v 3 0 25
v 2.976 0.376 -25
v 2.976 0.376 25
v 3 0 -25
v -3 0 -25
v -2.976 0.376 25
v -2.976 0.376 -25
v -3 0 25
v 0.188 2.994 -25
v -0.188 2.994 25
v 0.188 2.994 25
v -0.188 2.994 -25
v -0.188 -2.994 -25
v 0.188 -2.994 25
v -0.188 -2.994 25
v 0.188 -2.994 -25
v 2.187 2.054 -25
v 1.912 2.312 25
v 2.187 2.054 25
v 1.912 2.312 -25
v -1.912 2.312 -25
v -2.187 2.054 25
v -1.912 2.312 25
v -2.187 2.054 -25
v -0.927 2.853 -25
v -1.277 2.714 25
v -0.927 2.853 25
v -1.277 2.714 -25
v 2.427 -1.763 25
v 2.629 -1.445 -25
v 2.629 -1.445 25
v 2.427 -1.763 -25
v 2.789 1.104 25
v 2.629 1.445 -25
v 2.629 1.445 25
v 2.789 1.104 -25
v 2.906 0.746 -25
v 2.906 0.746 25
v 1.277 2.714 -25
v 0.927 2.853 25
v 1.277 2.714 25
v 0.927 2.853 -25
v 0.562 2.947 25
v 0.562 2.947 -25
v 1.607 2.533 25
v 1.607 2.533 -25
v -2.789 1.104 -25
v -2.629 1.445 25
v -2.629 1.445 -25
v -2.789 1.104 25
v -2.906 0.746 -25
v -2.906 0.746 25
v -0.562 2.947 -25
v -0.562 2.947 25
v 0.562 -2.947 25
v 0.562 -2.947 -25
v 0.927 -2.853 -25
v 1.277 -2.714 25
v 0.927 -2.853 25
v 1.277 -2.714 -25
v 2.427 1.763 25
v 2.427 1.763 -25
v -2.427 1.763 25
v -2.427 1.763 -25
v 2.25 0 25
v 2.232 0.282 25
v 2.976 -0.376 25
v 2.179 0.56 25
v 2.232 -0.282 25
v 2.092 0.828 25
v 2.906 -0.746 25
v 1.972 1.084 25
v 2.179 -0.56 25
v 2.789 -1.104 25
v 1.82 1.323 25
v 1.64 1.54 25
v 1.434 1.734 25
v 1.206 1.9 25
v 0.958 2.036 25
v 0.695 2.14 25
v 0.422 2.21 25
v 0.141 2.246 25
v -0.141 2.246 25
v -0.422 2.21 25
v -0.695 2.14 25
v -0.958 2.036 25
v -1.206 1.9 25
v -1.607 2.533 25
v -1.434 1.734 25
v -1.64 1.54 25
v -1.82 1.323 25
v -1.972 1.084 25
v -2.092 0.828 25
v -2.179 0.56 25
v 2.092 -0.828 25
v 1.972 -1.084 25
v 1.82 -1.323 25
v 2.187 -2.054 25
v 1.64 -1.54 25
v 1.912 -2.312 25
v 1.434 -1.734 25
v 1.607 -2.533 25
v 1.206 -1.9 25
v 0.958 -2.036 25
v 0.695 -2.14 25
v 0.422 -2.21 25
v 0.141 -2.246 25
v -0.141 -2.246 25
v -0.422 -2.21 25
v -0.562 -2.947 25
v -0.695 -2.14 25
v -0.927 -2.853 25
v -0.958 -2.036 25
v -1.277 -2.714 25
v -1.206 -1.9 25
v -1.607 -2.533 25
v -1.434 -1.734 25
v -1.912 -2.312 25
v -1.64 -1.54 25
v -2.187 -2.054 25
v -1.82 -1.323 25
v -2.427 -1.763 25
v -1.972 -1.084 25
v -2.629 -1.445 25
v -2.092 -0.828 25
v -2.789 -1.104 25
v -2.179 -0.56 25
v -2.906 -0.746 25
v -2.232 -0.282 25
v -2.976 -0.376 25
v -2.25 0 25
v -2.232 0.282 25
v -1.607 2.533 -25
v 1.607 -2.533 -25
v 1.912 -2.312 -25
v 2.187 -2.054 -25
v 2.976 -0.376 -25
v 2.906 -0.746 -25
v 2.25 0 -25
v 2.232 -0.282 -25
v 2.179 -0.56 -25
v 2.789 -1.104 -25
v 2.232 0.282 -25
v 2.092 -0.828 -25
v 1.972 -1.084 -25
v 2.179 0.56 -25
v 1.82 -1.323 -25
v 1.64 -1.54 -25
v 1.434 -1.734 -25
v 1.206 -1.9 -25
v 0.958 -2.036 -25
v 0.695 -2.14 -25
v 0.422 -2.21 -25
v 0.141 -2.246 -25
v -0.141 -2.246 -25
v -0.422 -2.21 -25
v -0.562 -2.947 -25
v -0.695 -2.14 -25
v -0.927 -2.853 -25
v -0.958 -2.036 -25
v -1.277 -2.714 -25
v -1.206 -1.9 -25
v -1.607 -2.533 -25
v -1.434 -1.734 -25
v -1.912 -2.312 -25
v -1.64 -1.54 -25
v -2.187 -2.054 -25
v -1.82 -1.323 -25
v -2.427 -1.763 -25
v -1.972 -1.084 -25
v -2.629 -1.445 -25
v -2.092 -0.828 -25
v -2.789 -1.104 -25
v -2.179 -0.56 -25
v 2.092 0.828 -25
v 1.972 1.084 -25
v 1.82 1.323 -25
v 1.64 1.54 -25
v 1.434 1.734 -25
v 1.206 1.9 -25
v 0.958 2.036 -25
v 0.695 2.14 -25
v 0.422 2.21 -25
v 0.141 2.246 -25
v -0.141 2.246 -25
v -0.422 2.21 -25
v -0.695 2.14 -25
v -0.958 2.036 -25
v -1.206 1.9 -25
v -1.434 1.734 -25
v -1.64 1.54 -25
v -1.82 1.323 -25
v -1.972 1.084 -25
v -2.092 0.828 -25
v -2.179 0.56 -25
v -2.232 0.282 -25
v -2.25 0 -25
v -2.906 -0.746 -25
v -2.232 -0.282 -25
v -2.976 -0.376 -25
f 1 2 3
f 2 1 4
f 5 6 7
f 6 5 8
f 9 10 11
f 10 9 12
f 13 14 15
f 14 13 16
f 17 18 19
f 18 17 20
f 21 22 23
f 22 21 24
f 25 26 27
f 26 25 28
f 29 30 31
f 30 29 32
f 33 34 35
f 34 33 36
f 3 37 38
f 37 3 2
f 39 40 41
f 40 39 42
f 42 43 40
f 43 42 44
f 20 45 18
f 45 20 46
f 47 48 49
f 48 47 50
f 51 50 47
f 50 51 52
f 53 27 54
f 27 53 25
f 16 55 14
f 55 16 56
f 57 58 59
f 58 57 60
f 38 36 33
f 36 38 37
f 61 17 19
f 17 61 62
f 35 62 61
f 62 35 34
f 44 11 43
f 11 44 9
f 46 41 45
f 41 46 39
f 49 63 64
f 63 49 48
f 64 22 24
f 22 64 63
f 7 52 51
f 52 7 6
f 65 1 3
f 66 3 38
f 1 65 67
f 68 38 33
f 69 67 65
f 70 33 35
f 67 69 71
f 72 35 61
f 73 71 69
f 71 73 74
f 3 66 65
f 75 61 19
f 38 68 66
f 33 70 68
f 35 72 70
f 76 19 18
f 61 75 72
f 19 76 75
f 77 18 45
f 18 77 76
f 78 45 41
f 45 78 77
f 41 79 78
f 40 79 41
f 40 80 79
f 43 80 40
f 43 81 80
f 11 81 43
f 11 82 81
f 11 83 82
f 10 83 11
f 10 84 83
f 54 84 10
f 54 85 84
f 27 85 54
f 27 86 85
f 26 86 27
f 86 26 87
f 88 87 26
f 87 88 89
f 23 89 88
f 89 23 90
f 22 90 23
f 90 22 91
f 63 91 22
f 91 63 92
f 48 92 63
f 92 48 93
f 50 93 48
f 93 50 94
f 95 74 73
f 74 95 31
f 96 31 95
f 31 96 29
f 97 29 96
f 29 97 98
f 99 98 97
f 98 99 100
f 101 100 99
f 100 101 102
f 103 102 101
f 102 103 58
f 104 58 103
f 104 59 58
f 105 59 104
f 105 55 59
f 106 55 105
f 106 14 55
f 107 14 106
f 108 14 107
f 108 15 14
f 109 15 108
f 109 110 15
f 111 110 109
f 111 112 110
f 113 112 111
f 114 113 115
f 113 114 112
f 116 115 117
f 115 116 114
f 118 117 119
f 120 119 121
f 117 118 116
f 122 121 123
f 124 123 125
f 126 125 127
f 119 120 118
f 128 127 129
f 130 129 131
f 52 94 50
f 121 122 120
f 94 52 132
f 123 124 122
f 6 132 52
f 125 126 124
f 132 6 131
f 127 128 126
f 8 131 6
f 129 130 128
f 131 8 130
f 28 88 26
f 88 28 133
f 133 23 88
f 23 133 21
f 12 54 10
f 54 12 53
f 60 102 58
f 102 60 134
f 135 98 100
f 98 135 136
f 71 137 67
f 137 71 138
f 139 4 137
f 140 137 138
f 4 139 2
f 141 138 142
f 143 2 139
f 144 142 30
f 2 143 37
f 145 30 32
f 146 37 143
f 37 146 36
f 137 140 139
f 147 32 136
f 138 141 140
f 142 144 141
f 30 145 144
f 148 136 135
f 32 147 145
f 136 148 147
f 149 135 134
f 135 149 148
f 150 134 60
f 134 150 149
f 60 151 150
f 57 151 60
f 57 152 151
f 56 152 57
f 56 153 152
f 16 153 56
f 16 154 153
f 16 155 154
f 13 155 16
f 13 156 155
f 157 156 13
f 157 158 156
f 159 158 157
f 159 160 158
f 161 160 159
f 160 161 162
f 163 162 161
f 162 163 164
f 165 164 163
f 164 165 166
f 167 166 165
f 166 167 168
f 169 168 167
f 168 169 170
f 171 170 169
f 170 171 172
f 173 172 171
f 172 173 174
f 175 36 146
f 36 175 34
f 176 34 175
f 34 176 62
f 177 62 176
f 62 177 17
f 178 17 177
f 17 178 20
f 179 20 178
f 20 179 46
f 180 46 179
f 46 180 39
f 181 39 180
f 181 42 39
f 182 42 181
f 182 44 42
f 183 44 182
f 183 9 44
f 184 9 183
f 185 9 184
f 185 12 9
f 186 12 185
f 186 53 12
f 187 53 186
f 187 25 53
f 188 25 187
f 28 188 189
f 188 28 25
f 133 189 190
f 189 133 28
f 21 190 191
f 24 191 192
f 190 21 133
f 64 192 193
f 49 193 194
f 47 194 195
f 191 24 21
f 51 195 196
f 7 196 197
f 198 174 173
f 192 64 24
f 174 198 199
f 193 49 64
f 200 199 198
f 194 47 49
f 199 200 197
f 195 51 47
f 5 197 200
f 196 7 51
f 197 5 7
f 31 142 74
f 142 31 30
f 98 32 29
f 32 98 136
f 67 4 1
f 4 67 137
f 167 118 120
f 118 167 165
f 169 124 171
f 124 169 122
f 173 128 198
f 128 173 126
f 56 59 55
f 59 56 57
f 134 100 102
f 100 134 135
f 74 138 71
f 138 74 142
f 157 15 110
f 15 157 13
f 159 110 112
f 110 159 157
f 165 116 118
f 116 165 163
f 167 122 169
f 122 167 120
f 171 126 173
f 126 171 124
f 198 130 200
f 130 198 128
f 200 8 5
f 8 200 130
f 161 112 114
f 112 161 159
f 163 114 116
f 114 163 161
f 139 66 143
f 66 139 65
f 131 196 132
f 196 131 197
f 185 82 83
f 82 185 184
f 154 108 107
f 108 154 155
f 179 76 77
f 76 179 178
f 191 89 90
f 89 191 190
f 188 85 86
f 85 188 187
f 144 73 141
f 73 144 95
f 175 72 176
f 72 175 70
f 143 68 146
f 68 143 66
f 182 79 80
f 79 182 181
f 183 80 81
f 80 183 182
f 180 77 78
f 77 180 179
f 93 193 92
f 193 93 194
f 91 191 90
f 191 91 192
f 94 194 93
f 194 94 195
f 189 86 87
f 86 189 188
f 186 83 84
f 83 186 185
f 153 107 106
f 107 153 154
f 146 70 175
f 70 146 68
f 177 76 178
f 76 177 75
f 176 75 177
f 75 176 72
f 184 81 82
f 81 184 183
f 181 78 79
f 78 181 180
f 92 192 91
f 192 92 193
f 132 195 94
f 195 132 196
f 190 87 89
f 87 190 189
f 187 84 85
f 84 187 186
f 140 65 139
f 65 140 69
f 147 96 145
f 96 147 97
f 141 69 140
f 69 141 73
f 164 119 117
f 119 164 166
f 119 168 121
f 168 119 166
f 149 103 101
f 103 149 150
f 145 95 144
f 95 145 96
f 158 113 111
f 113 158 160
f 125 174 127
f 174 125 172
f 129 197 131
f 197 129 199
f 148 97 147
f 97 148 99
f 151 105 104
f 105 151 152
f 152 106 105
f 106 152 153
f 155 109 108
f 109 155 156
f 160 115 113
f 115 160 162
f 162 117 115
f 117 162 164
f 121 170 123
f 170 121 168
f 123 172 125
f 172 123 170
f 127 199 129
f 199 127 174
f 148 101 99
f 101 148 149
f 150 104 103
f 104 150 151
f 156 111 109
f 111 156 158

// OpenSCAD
$fn = 50;


difference() {
	union() {
		translate(v = [0, 0, -25.0000000000]) {
			cylinder(h = 50, r = 3.0000000000);
		}
	}
	union() {
		translate(v = [0, 0, -100.0000000000]) {
			cylinder(h = 200, r = 2.2500000000);
		}
	}
}
